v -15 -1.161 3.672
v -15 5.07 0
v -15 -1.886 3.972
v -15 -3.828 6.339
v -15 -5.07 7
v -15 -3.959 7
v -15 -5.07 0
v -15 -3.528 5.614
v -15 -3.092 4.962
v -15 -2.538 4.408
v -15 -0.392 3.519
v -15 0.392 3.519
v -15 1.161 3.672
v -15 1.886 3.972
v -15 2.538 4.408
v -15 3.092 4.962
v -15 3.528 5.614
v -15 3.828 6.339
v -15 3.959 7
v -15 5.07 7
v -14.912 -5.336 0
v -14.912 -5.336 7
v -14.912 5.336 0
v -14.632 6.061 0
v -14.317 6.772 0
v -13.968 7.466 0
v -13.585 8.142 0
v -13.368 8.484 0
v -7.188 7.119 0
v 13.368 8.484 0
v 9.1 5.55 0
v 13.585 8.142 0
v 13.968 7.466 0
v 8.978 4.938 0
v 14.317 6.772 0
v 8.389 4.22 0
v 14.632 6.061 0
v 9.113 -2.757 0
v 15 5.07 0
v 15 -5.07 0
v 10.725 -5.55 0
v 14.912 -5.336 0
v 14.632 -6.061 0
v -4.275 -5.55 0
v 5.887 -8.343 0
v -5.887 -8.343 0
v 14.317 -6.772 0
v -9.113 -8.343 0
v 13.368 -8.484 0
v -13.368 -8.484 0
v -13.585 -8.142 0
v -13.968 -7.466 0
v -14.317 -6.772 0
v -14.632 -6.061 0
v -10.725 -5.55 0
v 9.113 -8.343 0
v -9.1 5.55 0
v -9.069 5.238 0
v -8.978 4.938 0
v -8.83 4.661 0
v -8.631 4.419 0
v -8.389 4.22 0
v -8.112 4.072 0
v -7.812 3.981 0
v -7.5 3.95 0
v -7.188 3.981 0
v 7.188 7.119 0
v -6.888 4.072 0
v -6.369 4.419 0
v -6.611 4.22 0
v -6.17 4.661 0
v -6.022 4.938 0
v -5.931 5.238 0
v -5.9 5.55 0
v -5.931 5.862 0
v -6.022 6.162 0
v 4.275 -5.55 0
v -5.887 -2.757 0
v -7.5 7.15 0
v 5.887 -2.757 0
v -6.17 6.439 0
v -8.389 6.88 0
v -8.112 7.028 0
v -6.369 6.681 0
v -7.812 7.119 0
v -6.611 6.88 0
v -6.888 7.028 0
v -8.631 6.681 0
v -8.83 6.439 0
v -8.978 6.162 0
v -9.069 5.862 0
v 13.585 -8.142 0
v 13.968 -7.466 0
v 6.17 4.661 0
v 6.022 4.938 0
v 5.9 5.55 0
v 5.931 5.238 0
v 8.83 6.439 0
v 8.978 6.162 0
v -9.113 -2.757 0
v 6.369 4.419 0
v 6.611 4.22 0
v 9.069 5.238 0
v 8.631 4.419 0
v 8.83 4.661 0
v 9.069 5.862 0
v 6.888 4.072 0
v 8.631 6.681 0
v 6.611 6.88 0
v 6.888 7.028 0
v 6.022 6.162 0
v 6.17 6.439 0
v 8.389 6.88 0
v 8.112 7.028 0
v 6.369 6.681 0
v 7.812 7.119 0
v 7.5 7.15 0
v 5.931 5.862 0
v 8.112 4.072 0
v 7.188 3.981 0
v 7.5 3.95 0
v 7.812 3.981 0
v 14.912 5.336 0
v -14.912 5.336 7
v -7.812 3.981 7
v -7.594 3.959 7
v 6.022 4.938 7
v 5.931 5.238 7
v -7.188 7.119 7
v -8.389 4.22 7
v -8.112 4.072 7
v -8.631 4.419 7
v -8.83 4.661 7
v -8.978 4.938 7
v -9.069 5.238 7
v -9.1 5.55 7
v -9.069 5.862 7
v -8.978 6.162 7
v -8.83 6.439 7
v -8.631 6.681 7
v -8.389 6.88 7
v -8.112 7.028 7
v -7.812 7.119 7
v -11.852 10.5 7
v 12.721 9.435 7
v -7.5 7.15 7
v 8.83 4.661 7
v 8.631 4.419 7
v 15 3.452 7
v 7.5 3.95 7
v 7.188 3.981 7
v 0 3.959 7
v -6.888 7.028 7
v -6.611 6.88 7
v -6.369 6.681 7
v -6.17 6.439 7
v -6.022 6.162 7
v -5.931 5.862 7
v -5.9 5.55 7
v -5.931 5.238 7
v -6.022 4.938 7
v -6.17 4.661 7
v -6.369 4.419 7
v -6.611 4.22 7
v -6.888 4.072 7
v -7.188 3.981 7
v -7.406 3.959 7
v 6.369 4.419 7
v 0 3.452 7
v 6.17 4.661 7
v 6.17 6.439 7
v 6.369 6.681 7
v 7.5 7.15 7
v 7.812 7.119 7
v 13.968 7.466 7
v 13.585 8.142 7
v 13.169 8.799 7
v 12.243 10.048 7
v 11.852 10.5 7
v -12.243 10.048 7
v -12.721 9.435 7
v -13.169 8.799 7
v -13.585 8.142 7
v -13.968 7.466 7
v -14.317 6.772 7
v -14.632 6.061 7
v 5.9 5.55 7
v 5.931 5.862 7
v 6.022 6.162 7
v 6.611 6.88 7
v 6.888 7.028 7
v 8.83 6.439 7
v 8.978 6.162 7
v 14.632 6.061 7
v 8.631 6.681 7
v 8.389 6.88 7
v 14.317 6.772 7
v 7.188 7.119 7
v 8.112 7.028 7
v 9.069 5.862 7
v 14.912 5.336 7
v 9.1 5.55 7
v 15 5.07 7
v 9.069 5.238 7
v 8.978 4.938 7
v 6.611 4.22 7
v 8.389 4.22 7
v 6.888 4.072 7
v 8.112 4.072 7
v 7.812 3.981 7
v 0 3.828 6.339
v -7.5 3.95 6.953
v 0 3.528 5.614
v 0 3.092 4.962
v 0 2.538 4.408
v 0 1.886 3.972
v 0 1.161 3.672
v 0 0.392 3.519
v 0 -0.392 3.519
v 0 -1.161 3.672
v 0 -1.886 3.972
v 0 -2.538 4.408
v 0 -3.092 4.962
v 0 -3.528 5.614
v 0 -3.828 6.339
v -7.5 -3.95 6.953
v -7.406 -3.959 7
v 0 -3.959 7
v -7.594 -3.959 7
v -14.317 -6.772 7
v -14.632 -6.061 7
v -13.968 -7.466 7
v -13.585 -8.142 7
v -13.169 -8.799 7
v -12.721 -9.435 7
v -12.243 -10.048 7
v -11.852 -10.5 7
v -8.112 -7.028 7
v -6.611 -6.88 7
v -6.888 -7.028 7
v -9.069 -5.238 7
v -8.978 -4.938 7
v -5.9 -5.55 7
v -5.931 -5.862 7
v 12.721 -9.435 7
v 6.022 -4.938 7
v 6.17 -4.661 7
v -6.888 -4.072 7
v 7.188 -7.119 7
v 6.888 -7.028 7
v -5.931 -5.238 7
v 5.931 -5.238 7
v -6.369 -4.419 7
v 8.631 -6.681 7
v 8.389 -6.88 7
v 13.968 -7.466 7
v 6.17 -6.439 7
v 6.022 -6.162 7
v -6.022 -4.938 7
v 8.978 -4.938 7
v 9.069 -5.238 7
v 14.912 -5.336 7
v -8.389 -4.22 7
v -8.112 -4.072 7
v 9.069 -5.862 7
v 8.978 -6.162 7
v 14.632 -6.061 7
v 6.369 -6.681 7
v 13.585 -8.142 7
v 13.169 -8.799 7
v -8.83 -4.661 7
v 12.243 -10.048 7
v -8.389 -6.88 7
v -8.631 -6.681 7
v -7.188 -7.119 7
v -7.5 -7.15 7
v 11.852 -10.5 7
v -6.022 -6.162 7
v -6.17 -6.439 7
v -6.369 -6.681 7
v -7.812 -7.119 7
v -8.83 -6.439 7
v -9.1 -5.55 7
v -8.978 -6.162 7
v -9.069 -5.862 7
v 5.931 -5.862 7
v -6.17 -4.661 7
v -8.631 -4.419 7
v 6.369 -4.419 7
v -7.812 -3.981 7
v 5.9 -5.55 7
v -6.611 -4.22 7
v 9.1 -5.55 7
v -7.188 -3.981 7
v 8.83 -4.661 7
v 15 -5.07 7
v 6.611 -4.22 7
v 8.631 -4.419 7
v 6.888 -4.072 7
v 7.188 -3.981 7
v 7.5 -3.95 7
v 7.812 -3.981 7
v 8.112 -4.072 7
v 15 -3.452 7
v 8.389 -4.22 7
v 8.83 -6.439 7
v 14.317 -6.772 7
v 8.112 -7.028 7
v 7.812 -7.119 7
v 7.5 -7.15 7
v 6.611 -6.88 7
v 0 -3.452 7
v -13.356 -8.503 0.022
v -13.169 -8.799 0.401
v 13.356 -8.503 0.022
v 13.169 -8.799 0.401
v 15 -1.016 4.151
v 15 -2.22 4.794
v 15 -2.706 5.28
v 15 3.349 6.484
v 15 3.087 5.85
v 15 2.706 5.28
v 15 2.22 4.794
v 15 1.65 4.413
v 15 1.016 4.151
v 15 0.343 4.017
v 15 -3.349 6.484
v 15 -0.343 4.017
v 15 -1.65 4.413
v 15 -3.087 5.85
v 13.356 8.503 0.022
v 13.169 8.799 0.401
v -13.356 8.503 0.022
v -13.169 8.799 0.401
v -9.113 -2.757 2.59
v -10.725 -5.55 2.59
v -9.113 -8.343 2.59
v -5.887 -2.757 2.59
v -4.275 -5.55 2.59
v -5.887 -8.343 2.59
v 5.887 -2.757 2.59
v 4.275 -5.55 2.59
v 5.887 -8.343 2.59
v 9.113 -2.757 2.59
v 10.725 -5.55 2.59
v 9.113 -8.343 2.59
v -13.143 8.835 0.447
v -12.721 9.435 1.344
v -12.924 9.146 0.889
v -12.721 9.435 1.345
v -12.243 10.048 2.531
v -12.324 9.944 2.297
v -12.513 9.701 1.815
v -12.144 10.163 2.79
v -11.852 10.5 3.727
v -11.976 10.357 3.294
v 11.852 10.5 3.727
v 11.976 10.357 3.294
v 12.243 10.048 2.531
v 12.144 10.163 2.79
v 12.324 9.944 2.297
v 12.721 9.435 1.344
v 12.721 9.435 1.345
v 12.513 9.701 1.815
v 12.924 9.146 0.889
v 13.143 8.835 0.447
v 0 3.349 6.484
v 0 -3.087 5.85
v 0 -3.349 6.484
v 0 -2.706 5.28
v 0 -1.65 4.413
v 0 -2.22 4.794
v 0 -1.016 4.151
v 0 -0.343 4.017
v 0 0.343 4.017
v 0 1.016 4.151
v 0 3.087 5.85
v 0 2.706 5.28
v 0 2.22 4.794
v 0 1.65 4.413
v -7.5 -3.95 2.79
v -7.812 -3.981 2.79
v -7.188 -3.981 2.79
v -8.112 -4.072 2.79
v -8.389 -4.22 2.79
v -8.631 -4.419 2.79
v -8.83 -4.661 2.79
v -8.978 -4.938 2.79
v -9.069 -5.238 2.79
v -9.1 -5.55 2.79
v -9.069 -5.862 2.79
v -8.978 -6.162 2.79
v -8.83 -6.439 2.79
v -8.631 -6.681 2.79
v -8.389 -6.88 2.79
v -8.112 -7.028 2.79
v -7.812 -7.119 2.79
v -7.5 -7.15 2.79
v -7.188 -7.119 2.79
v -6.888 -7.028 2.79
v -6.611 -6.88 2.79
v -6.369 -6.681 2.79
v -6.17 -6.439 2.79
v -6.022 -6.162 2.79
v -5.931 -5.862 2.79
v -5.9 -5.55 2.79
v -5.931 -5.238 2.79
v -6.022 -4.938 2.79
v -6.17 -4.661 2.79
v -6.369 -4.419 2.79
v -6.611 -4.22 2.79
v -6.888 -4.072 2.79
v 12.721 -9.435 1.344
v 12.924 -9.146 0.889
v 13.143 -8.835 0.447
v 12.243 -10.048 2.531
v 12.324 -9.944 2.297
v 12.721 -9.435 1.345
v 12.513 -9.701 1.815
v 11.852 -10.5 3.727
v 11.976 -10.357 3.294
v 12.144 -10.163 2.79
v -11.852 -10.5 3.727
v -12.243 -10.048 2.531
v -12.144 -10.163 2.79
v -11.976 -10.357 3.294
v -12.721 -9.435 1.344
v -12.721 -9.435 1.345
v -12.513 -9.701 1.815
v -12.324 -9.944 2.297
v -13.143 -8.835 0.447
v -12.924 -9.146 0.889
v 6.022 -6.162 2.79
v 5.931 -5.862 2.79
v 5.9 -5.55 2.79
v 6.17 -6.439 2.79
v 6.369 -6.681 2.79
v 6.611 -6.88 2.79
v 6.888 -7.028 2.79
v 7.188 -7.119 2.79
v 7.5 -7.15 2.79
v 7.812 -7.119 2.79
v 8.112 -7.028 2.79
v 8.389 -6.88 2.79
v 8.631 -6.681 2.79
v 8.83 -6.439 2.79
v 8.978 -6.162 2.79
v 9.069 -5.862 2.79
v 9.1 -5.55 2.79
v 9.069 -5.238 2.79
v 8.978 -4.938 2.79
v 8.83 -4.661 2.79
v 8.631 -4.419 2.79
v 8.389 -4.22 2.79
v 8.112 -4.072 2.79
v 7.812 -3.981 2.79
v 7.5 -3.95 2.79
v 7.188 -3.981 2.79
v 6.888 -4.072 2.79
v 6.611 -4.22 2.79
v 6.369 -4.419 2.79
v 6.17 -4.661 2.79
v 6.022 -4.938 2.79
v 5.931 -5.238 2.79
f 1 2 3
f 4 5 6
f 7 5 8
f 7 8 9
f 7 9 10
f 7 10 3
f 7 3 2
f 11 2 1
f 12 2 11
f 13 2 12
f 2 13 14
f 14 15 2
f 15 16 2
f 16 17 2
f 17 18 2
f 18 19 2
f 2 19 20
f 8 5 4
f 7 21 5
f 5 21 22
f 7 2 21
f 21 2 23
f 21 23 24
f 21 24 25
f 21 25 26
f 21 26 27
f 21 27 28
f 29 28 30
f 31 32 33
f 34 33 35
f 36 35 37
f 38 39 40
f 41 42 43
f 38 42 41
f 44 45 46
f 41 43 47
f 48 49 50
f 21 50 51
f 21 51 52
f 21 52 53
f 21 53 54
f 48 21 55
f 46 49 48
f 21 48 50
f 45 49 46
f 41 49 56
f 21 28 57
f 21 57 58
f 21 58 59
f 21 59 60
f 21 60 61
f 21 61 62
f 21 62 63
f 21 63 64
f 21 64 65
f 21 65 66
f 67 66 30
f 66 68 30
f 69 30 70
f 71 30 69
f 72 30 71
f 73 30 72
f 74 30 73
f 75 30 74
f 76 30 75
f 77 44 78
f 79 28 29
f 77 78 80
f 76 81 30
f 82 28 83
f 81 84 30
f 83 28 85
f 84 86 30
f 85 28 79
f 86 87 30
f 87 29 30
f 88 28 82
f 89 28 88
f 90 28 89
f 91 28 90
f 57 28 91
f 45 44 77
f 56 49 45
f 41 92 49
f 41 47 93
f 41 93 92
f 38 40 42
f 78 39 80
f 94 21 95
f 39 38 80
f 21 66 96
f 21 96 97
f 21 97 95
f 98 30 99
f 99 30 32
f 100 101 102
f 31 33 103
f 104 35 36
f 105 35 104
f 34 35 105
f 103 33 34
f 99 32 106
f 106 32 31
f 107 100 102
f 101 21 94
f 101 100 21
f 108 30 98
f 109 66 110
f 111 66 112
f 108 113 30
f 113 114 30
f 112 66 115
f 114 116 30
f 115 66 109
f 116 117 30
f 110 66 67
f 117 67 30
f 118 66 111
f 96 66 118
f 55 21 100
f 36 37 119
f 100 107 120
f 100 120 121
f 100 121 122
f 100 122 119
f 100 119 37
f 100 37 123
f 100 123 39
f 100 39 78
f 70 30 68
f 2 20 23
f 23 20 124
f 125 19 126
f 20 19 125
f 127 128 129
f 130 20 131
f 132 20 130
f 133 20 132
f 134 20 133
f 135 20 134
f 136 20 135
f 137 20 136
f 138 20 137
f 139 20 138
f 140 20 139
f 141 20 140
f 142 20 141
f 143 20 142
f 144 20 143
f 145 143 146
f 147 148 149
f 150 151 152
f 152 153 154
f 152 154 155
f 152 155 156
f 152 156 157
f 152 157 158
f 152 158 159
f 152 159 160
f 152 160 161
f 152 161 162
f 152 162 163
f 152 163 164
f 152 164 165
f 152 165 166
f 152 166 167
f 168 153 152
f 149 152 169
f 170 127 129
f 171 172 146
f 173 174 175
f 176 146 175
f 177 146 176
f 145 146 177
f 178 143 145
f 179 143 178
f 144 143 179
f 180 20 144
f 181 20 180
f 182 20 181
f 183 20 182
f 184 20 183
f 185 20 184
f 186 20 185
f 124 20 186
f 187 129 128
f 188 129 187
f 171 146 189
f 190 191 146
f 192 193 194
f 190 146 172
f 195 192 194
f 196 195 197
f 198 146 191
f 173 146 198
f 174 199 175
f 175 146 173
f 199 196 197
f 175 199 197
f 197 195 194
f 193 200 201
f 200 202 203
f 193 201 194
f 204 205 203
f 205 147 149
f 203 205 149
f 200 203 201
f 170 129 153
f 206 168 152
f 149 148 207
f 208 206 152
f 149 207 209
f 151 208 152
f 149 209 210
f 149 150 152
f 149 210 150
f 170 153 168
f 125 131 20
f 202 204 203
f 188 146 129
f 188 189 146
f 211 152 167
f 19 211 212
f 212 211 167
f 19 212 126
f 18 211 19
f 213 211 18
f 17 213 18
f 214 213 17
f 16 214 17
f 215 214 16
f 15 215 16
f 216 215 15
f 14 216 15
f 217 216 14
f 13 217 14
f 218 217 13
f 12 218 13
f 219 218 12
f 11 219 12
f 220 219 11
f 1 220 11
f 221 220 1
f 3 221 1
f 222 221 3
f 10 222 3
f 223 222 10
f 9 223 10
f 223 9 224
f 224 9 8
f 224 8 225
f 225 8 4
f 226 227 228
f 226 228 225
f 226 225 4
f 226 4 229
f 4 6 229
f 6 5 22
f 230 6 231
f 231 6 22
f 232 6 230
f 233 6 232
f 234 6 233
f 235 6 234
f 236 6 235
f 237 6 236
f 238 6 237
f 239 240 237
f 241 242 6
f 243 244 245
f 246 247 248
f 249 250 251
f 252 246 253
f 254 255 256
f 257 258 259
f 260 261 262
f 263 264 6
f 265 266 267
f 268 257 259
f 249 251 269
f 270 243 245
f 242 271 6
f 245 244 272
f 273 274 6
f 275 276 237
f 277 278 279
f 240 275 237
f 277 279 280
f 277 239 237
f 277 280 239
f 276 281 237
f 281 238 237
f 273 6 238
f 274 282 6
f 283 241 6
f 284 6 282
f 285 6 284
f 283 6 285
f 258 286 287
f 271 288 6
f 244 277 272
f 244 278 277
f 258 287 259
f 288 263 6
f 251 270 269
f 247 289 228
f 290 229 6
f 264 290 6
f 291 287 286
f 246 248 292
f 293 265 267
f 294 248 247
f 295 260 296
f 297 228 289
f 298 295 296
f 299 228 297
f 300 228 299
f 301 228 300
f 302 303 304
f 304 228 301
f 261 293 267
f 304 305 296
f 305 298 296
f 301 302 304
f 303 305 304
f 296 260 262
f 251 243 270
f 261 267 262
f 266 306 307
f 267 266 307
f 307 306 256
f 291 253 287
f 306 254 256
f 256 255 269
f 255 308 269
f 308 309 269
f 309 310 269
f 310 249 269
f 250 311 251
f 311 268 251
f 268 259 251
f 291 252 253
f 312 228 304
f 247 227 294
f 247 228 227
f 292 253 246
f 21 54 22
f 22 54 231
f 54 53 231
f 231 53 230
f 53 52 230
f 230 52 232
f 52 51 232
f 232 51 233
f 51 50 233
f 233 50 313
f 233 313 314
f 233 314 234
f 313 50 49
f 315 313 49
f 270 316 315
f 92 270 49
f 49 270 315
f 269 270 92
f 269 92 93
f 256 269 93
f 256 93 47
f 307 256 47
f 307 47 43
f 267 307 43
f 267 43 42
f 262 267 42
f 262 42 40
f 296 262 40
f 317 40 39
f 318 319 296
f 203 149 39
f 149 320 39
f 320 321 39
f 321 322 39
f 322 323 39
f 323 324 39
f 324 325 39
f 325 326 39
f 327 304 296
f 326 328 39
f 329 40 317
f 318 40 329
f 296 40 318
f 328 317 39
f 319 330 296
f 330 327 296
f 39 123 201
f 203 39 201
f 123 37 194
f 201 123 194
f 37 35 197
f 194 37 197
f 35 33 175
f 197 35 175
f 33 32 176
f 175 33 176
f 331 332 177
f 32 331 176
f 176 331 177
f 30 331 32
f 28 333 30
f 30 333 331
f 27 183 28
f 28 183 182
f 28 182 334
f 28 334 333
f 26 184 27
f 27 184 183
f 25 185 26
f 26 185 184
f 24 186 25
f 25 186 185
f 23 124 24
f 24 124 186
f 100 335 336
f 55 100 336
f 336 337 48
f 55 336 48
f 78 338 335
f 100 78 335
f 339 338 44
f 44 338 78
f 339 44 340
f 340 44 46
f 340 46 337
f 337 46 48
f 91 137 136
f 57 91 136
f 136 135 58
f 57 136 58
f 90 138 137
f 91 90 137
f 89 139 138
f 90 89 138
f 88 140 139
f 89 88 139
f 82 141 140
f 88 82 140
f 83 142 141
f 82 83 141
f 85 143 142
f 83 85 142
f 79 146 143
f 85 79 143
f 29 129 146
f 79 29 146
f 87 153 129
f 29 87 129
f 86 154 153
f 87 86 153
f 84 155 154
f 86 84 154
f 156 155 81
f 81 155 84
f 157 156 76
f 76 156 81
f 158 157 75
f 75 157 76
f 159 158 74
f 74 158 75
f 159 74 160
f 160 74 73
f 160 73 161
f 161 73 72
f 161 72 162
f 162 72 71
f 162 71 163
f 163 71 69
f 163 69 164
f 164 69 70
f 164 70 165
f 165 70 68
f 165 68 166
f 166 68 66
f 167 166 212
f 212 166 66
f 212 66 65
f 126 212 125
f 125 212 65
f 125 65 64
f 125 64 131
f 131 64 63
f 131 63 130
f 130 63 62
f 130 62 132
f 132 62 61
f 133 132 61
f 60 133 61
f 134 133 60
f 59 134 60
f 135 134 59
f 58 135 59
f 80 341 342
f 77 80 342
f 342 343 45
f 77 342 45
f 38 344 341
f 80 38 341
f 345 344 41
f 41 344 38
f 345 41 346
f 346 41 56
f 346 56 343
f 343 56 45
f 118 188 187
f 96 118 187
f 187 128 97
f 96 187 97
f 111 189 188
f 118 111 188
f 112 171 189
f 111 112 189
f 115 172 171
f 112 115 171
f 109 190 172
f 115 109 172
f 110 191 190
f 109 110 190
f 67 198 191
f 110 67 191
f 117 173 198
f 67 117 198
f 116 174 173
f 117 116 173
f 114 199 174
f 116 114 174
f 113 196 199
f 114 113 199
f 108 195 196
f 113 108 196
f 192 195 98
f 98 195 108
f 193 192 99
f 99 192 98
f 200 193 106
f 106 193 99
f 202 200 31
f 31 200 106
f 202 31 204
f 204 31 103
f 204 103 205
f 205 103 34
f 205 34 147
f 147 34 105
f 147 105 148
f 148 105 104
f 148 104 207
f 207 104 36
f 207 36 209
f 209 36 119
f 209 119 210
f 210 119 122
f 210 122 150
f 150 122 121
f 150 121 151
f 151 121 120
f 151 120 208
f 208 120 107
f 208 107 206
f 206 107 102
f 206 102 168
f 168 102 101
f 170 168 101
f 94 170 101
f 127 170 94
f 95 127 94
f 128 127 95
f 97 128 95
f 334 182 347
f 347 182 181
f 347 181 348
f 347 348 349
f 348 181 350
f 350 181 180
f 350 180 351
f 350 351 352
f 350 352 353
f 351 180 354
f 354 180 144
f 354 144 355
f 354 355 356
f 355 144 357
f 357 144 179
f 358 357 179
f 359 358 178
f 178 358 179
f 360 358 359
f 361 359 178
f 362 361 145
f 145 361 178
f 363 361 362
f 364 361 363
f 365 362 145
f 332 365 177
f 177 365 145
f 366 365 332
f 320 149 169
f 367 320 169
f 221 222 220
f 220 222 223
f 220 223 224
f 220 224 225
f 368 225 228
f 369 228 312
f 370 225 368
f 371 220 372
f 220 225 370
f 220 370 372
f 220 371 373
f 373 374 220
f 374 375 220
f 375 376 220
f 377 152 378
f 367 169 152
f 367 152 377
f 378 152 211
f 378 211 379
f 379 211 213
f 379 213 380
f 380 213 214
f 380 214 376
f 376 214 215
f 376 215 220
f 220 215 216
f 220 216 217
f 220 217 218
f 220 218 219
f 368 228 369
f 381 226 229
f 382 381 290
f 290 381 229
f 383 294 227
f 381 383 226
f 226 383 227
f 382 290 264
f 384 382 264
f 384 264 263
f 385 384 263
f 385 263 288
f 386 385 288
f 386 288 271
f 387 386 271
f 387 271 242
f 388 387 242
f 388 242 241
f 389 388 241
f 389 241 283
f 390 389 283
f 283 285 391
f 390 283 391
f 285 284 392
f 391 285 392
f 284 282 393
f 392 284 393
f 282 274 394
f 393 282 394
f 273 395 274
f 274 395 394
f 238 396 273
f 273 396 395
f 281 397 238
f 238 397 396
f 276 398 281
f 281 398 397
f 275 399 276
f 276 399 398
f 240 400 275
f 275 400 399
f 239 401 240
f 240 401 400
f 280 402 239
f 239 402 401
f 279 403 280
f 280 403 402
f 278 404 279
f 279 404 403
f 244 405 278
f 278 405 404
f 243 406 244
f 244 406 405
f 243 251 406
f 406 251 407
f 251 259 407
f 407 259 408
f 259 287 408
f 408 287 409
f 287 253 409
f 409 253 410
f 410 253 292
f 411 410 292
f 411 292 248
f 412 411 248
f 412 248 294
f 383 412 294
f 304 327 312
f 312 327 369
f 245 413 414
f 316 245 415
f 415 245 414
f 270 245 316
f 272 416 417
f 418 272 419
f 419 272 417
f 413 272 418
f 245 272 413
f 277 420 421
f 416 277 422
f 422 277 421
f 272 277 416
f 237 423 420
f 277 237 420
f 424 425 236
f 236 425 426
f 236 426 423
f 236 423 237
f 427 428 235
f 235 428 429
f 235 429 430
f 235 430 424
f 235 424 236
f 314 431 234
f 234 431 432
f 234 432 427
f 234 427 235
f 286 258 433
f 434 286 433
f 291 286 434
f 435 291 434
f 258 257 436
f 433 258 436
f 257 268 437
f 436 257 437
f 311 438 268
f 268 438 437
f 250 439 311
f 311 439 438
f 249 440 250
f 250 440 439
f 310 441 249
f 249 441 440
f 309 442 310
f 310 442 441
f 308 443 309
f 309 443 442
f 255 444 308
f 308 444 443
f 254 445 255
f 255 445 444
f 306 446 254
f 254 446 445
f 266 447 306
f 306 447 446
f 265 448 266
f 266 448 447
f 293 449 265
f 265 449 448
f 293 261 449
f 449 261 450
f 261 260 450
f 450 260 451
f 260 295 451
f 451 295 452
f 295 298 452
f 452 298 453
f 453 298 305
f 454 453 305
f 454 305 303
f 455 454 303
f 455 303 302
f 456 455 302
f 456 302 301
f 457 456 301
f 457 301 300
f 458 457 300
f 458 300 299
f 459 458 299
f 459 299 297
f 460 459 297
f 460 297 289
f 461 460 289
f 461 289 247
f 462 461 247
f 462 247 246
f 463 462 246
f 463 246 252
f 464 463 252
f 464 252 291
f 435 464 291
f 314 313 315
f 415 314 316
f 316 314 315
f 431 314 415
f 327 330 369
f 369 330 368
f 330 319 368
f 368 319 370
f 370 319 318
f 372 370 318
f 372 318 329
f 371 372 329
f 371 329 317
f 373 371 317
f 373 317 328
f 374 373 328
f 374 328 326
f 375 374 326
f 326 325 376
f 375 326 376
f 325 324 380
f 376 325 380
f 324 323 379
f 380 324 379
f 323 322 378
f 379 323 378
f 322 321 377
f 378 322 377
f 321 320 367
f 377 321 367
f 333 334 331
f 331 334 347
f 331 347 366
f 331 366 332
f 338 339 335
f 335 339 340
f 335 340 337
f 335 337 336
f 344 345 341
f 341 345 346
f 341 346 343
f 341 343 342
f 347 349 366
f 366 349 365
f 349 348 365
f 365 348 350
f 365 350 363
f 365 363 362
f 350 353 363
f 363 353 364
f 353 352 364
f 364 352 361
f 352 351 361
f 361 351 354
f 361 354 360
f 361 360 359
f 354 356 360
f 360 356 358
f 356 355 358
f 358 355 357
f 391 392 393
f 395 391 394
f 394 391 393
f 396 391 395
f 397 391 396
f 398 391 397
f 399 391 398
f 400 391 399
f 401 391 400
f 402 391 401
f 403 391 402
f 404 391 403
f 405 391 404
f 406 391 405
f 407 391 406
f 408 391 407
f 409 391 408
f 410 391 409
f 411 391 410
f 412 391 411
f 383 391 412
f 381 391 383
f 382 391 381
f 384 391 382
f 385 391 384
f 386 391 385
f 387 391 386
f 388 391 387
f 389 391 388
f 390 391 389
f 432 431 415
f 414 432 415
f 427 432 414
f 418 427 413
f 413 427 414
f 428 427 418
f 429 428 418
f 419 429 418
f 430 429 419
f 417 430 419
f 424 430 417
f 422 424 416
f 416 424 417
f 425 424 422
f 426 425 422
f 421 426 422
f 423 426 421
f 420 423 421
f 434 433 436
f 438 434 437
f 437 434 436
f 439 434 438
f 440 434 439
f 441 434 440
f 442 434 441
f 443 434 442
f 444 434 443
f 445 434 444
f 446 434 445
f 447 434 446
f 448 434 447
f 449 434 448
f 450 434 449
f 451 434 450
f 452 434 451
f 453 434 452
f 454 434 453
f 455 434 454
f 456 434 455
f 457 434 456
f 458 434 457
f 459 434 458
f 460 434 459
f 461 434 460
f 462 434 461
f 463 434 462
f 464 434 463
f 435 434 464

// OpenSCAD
/*  Symmetric Prusia Z-coupling
    by Philip Hands <phil@hands.com>
    Copyright (C) 2011,
    distributed under the GNU GPL v2 (or later) license.
-   Inspired by:
    Yet Another Prusa Mendel Z Coupling by nophead
	is licensed under the Creative Commons - GNU GPL license.
*/

module nuttrap_inverted(h=2.2, bolt=1.8, nut=3.25, lh=0.2) {
	render()
	union() {
		translate([0, 0, -1]) cylinder(r=5.5 / cos(180 / 6) / 2 + 0.05, h=3.6, $fn=6);
		translate([0, 0, 2.8]) cylinder(r=1.6, h=10, $fn=32);
	}
}

module coupling(x=30,y=21,z=7,s=8,m=7, lh=0.2)
{
	intersection() {
		difference()
		{
			intersection()
			{
				translate([-x/2, -y/2, 0]) cube([x,y,z]);
				cylinder(h=z, r=sqrt(pow(x/2,2)+pow(max(s,m)/2+((y-max(s,m))/12),2)),$fn=128);
			}
	
			// Nut holes
			translate([-x/4,0 - s/2 - 1.55,-0.01]) nuttrap_inverted();
			translate([ x/4,0 - s/2 - 1.55,-0.01]) nuttrap_inverted();
	
			// bolt holes
			translate([-x/4,0 + s/2 + 1.55,-1]) cylinder(h=10, r=1.6, $fn=32);
			translate([ x/4,0 + s/2 + 1.55, -1]) cylinder(h=10, r=1.6, $fn=32);
	
			// dents for shafts
			translate([0, 0, z+0.5]) rotate([0,-90,0]) rotate([0, 0, 180/32]) cylinder(h=x/2+1, r=s/2, $fn=32);
			translate([-1, 0, z+0.5]) rotate([0,90,0]) rotate([0, 0, 180/32]) cylinder(h=x/2+2, r=m/2, $fn=32);
		}
		translate([0, 0, 7])rotate([0, 90, 0]) cylinder(r=22 / 2, h=40, center=true, $fn=128);
	}
}

coupling();


//translate([0, 30, 0]) coupling();
//translate([35, 0, 0]) coupling();
//translate([35, 30, 0]) coupling();
